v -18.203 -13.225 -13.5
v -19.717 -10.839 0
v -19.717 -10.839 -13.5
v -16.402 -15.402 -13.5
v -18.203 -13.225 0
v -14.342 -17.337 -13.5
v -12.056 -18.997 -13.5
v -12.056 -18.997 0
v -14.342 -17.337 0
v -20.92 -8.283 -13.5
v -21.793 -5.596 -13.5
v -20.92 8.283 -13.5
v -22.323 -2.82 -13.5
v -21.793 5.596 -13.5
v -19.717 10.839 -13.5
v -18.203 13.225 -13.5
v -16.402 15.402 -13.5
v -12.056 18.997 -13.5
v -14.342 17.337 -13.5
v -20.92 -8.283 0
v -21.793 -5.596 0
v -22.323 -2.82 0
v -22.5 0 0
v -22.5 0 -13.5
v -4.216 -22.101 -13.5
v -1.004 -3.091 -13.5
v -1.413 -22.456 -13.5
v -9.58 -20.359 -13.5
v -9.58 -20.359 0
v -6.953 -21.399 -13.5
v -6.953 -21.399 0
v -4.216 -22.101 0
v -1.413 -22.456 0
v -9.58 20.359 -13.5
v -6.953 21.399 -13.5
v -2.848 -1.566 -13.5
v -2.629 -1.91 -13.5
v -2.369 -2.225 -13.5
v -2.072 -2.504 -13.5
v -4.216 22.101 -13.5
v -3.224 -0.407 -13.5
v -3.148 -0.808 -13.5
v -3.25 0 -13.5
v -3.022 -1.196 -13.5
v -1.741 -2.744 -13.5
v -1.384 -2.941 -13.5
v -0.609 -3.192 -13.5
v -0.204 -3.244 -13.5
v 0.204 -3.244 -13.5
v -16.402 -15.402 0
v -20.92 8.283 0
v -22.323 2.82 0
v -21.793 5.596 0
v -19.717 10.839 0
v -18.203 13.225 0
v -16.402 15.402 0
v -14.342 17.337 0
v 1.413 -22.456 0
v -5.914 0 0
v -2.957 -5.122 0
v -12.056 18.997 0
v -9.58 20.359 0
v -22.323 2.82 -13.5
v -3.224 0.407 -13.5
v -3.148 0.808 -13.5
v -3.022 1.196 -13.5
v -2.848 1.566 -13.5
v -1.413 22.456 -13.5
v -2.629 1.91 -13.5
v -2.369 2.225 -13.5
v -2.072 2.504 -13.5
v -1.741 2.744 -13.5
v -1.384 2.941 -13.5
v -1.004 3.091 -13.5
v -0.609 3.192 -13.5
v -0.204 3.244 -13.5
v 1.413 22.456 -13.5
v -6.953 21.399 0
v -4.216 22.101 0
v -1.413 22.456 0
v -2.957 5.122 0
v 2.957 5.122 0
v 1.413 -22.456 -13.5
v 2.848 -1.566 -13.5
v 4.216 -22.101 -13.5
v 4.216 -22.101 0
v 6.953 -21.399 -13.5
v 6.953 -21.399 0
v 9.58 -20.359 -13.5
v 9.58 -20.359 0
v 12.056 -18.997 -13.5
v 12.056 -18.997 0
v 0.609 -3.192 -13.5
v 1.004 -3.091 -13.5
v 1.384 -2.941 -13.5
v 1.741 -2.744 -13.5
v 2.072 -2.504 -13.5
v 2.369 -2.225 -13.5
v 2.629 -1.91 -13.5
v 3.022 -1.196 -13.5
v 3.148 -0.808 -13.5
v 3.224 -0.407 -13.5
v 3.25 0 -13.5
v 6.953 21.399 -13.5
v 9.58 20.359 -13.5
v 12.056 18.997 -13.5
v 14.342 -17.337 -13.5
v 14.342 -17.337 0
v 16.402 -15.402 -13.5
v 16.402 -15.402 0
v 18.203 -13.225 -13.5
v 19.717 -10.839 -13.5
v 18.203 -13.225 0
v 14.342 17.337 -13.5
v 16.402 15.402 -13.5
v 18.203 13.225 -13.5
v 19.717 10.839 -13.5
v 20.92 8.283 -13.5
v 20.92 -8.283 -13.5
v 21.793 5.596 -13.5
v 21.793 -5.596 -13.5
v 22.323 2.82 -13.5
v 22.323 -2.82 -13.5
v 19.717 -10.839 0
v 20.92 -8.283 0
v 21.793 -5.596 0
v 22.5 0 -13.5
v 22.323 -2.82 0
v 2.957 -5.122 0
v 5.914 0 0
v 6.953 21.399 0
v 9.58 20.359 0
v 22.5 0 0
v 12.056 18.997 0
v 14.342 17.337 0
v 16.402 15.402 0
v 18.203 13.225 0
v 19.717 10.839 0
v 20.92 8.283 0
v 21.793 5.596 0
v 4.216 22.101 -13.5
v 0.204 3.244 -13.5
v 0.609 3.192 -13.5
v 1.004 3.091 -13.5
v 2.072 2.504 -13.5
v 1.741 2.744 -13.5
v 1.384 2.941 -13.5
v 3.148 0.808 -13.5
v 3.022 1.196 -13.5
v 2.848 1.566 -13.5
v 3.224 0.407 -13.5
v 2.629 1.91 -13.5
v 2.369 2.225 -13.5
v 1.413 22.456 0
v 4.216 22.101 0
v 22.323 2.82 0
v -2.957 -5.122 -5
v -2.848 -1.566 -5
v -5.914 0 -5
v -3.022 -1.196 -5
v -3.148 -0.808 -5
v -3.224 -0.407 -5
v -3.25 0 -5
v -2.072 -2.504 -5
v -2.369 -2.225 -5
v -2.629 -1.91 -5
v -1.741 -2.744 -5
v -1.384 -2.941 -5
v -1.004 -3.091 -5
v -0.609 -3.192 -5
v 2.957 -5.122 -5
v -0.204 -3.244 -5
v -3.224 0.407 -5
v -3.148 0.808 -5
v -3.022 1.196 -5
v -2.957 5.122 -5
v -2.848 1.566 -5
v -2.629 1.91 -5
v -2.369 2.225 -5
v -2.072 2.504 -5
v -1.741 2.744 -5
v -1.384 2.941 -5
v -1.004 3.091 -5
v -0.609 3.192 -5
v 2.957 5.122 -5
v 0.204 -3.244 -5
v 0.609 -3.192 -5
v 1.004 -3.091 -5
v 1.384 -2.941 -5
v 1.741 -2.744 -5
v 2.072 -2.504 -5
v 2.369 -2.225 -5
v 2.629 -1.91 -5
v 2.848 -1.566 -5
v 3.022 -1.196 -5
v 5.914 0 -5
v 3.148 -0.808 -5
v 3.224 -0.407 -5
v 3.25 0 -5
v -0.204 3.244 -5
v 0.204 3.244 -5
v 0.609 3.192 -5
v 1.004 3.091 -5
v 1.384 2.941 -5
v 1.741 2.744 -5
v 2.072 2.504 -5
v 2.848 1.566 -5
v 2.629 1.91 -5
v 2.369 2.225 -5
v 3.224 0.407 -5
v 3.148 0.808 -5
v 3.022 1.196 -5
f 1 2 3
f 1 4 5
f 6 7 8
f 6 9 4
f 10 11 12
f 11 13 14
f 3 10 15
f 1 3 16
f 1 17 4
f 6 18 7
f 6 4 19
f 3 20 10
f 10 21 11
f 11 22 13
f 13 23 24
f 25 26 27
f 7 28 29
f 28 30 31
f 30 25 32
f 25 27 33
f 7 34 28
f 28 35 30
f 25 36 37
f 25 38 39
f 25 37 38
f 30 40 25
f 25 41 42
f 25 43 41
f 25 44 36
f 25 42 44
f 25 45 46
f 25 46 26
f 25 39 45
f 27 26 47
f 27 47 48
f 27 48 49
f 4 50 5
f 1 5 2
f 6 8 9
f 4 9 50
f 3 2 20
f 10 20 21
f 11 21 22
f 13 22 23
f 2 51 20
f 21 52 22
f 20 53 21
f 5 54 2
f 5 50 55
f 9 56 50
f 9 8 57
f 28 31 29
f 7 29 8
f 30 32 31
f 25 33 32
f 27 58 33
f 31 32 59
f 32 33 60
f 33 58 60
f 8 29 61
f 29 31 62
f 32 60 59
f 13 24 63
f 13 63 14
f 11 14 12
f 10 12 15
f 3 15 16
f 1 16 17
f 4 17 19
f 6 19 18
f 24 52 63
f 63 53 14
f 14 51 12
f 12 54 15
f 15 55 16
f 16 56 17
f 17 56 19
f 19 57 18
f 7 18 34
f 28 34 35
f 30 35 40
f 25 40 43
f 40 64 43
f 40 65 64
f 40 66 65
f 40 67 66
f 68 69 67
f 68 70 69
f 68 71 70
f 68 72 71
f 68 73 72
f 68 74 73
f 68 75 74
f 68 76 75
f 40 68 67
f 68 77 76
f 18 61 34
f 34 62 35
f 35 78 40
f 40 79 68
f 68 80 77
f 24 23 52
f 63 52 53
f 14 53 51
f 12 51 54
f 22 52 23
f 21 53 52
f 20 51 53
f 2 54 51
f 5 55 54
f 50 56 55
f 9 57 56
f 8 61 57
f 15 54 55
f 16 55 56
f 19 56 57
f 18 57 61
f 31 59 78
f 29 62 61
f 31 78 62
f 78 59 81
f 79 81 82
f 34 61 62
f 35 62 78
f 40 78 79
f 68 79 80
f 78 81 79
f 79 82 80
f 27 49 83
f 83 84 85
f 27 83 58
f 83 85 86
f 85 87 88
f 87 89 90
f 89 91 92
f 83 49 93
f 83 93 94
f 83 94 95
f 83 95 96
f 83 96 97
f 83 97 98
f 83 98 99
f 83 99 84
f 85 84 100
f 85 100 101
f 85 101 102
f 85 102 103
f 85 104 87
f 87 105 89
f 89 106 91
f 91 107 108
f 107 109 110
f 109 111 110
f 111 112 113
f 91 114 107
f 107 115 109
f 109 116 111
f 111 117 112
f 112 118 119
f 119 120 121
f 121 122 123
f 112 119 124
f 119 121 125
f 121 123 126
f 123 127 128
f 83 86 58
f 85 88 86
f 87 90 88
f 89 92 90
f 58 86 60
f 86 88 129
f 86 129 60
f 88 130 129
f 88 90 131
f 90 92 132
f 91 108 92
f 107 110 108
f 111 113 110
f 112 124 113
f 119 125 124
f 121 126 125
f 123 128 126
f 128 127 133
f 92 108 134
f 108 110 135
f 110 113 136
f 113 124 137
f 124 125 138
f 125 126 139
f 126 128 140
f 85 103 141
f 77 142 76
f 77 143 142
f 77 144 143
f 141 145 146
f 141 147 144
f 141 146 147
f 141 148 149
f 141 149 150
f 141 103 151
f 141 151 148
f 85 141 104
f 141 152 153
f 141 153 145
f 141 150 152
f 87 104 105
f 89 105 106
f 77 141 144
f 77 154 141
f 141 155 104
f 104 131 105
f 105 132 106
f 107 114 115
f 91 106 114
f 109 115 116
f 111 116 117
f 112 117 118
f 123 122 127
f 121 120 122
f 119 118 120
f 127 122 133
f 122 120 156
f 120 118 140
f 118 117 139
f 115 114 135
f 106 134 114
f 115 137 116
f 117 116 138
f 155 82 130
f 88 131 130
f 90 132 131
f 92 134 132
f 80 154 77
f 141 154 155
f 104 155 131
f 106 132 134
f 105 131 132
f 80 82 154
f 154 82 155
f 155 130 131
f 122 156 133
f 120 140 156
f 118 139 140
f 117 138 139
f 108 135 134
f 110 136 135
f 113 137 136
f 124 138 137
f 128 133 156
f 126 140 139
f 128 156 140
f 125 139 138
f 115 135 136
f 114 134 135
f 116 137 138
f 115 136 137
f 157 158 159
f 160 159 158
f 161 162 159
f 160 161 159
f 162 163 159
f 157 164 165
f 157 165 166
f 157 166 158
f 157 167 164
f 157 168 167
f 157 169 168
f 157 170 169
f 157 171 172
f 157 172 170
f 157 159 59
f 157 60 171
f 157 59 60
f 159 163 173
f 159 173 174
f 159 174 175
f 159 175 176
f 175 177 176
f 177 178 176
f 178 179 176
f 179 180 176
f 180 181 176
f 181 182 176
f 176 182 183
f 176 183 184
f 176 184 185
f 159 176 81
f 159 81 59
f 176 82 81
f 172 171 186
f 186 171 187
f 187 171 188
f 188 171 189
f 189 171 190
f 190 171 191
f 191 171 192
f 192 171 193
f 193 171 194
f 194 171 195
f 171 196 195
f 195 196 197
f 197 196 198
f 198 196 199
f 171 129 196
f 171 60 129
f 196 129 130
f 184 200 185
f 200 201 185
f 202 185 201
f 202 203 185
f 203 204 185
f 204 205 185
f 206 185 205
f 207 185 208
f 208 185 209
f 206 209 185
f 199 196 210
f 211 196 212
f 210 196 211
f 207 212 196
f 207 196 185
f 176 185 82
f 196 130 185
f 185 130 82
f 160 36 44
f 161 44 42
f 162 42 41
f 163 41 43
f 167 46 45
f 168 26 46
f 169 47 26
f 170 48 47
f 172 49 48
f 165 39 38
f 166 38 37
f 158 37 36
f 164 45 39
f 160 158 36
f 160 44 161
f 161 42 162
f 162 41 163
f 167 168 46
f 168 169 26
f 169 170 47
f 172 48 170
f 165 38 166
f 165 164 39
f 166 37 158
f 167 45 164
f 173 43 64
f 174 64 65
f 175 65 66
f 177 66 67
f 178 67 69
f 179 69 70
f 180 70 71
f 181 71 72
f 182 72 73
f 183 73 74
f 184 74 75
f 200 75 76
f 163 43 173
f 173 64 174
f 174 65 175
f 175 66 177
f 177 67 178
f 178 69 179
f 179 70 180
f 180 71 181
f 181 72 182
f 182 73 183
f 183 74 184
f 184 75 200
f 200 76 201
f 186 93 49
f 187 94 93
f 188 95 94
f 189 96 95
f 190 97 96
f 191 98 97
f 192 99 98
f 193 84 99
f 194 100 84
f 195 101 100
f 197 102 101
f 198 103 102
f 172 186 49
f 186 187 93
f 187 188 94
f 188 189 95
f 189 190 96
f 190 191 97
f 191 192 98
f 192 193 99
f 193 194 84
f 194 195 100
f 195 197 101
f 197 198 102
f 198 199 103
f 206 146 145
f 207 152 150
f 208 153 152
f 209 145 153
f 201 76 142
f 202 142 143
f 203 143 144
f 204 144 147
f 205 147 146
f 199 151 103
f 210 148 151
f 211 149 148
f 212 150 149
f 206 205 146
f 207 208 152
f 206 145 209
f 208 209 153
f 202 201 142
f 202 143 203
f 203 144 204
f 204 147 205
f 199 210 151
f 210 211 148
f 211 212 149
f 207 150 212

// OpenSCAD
$fn = 50;

difference() {
	union() {
		translate(v = [0, 0, -13.5]) {
			cylinder(h = 13.5, r = 22.5);
		}
		#translate(v = [0, 0, -15.0]) {
			cylinder(h = 15, r = 2.875);
		}
	}
	union() {
		translate(v = [0, 0, 0]) {
			rotate(a = [0, 0, 0]) {
				difference() {
					union() {
						translate(v = [0, 0, -5]) {
							linear_extrude(height = 5) {
								polygon(points = [[5.914249999999999, 0.0], [2.957125, 5.1218907443321156], [-2.9571249999999982, 5.1218907443321156], [-5.914249999999999, 7.242867331857232e-16], [-2.9571250000000022, -5.121890744332115], [2.9571249999999956, -5.121890744332118]]);
							}
						}
					}
					union();
				}
			}
		}
		#translate(v = [0, 0, -100.0]) {
			cylinder(h = 200, r = 3.25);
		}
	}
}
